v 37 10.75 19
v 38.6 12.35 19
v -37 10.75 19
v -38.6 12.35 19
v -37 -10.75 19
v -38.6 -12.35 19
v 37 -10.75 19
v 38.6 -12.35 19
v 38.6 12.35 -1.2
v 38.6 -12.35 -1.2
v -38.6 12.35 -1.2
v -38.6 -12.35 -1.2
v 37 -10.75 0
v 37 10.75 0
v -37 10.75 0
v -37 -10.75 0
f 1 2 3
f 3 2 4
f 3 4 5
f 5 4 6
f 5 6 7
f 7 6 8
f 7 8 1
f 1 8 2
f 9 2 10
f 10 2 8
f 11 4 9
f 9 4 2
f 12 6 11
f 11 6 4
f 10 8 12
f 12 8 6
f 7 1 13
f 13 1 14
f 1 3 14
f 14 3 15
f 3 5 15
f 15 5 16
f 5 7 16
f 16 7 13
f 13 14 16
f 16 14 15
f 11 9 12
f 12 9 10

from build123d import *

# Parameters (mm, degrees)
SKETCH1_W           = 77.2
SKETCH1_H           = 24.7
SKETCH1_W_2         = 74
SKETCH1_H_2         = 21.5
BOSS_EXTRUDE1_DEPTH = 19
SKETCH1_2_W         = 77.2
SKETCH1_2_H         = 24.7
BOSS_EXTRUDE2_DEPTH = 1.2


with BuildPart() as part:
    # Sketch1 → Boss-Extrude1 (new body)
    with BuildSketch(Plane.XY):
        Rectangle(SKETCH1_W, SKETCH1_H)
        Rectangle(SKETCH1_W_2, SKETCH1_H_2, mode=Mode.SUBTRACT)
    extrude(amount=BOSS_EXTRUDE1_DEPTH)

    # Sketch1<2> → Boss-Extrude2 (add)
    with BuildSketch(Plane.XY):
        Rectangle(SKETCH1_2_W, SKETCH1_2_H)
    extrude(amount=-BOSS_EXTRUDE2_DEPTH)


solid = part.part
